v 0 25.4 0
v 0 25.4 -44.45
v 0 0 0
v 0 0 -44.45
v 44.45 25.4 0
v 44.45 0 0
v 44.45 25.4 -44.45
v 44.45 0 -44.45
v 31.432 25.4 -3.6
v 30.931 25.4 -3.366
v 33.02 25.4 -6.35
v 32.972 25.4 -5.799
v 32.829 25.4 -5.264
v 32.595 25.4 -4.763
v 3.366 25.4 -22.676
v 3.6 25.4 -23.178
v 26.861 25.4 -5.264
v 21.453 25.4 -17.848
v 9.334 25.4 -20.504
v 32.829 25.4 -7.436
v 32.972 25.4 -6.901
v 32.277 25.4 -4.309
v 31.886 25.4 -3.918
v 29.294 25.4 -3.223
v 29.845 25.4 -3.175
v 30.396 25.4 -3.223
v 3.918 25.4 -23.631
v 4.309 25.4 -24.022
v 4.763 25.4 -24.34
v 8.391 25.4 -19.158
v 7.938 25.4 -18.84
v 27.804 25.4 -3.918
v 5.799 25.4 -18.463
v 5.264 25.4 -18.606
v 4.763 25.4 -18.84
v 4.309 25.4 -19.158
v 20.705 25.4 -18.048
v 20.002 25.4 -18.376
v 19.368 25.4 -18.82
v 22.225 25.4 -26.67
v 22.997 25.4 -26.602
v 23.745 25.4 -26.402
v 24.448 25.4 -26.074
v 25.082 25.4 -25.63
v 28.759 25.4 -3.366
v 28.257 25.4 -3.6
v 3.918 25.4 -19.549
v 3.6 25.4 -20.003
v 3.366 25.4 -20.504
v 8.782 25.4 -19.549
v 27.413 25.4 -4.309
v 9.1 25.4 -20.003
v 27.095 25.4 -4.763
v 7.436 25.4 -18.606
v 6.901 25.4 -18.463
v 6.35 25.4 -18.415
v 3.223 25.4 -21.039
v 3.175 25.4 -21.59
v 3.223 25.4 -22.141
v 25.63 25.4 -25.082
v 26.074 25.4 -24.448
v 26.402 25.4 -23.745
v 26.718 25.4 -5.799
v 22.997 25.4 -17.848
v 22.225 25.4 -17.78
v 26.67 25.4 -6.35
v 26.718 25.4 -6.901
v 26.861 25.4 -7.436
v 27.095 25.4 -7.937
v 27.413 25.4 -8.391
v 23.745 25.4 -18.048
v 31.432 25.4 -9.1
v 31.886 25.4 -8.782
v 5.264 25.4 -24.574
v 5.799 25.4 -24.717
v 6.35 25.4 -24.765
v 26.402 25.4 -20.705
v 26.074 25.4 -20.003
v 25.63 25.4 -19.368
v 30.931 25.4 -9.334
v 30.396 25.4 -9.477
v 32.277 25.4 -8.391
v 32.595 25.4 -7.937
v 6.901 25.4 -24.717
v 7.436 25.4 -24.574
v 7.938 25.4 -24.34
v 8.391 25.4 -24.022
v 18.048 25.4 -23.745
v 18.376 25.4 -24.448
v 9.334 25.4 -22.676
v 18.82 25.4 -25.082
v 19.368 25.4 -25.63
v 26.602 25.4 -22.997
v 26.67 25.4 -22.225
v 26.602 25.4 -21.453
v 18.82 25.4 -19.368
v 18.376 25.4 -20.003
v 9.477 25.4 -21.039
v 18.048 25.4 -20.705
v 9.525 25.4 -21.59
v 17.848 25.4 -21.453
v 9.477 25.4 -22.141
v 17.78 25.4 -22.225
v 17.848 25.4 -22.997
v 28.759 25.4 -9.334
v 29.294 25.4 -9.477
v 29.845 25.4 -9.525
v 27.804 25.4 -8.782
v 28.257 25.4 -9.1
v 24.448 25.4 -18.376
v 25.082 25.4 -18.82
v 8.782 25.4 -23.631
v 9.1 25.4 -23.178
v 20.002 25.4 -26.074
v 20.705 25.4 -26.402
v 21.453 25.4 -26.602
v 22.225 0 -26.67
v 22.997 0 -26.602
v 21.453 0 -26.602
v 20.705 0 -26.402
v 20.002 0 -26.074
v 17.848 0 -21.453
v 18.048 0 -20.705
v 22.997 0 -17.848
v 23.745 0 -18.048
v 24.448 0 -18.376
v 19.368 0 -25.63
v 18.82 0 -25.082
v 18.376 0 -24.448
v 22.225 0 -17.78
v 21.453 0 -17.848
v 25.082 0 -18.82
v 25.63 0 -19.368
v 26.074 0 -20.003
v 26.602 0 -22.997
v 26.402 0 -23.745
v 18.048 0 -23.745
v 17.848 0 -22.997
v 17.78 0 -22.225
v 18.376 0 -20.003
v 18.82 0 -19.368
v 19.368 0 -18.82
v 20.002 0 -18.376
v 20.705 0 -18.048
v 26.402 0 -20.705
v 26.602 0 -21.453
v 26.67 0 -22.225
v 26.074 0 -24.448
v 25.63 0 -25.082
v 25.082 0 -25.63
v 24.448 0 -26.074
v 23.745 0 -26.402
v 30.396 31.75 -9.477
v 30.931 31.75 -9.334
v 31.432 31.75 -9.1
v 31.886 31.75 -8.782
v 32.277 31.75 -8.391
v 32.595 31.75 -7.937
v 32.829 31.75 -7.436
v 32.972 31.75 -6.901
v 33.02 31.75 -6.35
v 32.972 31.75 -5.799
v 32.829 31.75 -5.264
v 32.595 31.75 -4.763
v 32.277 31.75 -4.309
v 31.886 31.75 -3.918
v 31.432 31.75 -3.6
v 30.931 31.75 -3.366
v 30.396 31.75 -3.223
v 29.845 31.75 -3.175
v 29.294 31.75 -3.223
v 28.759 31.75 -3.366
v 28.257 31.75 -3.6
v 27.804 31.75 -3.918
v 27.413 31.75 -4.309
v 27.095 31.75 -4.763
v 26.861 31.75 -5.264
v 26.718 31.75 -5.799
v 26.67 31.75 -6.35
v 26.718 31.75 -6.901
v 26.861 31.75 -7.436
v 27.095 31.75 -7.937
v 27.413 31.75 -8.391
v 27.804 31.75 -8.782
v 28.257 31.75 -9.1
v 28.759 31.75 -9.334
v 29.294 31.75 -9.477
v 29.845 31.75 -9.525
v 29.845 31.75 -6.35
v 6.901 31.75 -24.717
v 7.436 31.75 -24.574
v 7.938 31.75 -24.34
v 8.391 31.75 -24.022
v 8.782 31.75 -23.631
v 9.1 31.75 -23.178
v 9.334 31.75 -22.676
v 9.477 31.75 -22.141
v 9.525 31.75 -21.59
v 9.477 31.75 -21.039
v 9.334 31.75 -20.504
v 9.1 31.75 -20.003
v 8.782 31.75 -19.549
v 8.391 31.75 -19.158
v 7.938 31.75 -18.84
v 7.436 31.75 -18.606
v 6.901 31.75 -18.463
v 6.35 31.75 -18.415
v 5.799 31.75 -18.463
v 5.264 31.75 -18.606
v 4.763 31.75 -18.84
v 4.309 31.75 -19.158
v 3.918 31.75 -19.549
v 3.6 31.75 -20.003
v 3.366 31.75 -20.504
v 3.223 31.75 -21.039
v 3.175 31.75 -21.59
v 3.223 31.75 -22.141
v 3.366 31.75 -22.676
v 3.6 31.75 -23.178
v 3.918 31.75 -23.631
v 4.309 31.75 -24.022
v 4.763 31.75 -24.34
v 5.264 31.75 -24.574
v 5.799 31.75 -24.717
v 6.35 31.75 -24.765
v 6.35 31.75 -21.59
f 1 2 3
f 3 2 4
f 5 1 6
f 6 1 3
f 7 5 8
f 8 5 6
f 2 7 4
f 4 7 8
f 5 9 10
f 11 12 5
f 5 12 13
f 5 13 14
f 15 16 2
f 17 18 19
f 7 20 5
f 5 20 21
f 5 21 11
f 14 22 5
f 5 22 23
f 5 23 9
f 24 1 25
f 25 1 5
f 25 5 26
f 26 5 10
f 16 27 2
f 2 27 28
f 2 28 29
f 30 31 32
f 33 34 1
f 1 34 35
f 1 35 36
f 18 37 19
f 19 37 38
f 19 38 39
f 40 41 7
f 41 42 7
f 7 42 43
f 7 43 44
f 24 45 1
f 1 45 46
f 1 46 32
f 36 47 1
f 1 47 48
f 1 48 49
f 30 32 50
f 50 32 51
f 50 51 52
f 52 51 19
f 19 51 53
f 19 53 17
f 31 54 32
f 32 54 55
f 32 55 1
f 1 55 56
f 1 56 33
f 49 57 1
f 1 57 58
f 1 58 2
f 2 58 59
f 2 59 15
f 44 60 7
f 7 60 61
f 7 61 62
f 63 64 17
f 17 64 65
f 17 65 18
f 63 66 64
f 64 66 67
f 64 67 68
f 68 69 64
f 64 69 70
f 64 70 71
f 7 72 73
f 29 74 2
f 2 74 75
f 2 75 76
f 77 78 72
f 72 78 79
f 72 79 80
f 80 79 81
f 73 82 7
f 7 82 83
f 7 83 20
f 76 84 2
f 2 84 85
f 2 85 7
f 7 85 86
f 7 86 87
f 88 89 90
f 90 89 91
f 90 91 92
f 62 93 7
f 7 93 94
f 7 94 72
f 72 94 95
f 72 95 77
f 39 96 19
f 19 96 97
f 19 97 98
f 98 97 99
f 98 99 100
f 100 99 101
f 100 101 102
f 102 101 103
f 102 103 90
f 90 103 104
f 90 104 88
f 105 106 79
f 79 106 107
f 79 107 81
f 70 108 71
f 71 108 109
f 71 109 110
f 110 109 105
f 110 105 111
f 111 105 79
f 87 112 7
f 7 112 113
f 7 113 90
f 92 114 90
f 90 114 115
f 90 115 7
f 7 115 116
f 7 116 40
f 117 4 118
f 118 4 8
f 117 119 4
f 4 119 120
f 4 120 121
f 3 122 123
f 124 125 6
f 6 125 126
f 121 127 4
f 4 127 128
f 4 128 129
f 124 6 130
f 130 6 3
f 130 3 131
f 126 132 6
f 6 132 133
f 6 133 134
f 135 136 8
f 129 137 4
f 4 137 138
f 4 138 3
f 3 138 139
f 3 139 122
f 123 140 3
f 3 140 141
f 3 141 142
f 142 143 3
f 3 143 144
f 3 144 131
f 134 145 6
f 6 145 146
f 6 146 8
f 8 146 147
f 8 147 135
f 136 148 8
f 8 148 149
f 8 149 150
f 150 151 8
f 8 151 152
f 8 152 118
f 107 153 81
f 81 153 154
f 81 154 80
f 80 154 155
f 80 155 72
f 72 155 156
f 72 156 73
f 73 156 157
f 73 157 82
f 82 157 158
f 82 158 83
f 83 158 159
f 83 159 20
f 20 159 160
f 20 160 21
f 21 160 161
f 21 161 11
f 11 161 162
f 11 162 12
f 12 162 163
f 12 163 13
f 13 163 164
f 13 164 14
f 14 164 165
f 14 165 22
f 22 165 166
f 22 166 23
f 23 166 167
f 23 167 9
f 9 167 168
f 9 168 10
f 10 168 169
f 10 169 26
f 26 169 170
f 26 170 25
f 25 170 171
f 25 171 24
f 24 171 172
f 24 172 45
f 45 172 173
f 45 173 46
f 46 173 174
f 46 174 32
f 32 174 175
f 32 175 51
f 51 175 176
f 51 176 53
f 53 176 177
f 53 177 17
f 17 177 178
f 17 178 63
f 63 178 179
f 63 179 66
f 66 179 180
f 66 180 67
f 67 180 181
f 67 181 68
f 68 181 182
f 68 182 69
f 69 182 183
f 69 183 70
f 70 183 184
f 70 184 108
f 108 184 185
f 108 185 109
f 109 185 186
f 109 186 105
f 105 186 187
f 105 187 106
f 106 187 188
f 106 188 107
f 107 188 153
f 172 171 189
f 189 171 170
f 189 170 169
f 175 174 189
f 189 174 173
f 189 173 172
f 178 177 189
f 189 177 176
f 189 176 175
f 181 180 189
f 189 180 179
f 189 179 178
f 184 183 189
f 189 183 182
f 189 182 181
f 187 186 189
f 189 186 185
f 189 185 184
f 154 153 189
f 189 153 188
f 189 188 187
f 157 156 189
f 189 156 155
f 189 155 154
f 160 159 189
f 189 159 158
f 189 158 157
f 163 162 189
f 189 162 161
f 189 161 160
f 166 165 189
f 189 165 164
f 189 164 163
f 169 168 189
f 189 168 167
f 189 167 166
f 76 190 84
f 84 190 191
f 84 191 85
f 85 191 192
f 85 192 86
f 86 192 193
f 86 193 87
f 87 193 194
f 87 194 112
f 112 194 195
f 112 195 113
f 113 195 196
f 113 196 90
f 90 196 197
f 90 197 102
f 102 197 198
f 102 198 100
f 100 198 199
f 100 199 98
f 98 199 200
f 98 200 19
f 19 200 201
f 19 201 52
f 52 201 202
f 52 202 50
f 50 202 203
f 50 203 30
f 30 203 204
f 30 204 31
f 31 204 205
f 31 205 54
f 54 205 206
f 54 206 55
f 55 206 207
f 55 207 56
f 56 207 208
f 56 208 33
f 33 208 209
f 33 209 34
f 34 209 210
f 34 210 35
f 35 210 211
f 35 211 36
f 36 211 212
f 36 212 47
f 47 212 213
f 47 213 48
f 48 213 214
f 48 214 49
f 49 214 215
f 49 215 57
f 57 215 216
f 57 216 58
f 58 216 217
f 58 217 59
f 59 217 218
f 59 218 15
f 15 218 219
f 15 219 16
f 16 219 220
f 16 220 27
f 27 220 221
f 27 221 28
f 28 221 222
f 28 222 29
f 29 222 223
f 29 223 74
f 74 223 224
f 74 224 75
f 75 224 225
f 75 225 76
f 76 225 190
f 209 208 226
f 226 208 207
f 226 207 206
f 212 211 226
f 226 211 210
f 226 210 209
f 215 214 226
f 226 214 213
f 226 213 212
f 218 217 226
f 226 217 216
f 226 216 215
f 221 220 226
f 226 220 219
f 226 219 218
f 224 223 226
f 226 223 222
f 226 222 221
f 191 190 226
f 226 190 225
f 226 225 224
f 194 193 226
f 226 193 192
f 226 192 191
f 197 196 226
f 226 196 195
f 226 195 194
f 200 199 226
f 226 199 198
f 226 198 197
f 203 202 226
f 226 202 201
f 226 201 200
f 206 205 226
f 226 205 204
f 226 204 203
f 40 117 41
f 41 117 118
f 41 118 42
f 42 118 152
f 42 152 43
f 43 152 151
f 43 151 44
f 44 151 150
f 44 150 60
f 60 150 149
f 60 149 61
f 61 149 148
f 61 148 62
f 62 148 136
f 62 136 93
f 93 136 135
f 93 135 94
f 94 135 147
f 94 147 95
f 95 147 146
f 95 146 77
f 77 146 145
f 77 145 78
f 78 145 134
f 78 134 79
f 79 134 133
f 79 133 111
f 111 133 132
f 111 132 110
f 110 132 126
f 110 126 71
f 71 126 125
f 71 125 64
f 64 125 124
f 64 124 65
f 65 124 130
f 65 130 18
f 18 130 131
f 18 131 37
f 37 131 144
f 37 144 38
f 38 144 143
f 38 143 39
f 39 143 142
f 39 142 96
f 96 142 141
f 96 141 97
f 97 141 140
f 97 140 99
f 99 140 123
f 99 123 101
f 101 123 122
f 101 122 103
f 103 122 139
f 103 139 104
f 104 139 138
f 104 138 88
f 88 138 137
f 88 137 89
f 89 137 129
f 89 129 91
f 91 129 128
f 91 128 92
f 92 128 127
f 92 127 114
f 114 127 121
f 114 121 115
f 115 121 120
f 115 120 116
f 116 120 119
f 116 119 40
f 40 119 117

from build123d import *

# Parameters (mm, degrees)
SKETCH1_W           = 44.45
SKETCH1_H           = 44.45
BOSS_EXTRUDE1_DEPTH = 25.4
SKETCH2_R           = 3.175
BOSS_EXTRUDE2_DEPTH = 6.35
SKETCH3_R           = 2.4257
CUT_EXTRUDE1_DEPTH  = 25.4
SKETCH4_R           = 4.445
CUT_EXTRUDE2_DEPTH  = 25.4


with BuildPart() as part:
    # Sketch1 → Boss-Extrude1 (new body)
    with BuildSketch(Plane(origin=(0, 0, 0), x_dir=(1, 0, 0), z_dir=(0, 1, 0))):
        with Locations((22.225, 22.225)):
            Rectangle(SKETCH1_W, SKETCH1_H)
    extrude(amount=BOSS_EXTRUDE1_DEPTH)

    # Sketch2 → Boss-Extrude2 (add)
    with BuildSketch(Plane(origin=(0, 25.4, 0), x_dir=(1, 0, 0), z_dir=(0, 1, 0))):
        with Locations(Location((6.35, 21.59, 0), (0, 0, 270))):
            Circle(SKETCH2_R)
        with Locations(Location((29.845, 6.35, 0), (0, 0, 270))):
            Circle(SKETCH2_R)
    extrude(amount=BOSS_EXTRUDE2_DEPTH)

    # Sketch3 → Cut-Extrude1 (cut)
    with BuildSketch(Plane(origin=(0, 25.4, 0), x_dir=(1, 0, 0), z_dir=(0, 1, 0))):
        with Locations(Location((22.225, 22.225, 0), (0, 0, 270))):
            Circle(SKETCH3_R)
    extrude(amount=-CUT_EXTRUDE1_DEPTH, mode=Mode.SUBTRACT)

    # Sketch4 → Cut-Extrude2 (cut)
    with BuildSketch(Plane.XZ):
        with Locations(Location((22.225, -22.225, 0), (0, 0, 270))):
            Circle(SKETCH4_R)
    extrude(amount=-CUT_EXTRUDE2_DEPTH, mode=Mode.SUBTRACT)


solid = part.part
